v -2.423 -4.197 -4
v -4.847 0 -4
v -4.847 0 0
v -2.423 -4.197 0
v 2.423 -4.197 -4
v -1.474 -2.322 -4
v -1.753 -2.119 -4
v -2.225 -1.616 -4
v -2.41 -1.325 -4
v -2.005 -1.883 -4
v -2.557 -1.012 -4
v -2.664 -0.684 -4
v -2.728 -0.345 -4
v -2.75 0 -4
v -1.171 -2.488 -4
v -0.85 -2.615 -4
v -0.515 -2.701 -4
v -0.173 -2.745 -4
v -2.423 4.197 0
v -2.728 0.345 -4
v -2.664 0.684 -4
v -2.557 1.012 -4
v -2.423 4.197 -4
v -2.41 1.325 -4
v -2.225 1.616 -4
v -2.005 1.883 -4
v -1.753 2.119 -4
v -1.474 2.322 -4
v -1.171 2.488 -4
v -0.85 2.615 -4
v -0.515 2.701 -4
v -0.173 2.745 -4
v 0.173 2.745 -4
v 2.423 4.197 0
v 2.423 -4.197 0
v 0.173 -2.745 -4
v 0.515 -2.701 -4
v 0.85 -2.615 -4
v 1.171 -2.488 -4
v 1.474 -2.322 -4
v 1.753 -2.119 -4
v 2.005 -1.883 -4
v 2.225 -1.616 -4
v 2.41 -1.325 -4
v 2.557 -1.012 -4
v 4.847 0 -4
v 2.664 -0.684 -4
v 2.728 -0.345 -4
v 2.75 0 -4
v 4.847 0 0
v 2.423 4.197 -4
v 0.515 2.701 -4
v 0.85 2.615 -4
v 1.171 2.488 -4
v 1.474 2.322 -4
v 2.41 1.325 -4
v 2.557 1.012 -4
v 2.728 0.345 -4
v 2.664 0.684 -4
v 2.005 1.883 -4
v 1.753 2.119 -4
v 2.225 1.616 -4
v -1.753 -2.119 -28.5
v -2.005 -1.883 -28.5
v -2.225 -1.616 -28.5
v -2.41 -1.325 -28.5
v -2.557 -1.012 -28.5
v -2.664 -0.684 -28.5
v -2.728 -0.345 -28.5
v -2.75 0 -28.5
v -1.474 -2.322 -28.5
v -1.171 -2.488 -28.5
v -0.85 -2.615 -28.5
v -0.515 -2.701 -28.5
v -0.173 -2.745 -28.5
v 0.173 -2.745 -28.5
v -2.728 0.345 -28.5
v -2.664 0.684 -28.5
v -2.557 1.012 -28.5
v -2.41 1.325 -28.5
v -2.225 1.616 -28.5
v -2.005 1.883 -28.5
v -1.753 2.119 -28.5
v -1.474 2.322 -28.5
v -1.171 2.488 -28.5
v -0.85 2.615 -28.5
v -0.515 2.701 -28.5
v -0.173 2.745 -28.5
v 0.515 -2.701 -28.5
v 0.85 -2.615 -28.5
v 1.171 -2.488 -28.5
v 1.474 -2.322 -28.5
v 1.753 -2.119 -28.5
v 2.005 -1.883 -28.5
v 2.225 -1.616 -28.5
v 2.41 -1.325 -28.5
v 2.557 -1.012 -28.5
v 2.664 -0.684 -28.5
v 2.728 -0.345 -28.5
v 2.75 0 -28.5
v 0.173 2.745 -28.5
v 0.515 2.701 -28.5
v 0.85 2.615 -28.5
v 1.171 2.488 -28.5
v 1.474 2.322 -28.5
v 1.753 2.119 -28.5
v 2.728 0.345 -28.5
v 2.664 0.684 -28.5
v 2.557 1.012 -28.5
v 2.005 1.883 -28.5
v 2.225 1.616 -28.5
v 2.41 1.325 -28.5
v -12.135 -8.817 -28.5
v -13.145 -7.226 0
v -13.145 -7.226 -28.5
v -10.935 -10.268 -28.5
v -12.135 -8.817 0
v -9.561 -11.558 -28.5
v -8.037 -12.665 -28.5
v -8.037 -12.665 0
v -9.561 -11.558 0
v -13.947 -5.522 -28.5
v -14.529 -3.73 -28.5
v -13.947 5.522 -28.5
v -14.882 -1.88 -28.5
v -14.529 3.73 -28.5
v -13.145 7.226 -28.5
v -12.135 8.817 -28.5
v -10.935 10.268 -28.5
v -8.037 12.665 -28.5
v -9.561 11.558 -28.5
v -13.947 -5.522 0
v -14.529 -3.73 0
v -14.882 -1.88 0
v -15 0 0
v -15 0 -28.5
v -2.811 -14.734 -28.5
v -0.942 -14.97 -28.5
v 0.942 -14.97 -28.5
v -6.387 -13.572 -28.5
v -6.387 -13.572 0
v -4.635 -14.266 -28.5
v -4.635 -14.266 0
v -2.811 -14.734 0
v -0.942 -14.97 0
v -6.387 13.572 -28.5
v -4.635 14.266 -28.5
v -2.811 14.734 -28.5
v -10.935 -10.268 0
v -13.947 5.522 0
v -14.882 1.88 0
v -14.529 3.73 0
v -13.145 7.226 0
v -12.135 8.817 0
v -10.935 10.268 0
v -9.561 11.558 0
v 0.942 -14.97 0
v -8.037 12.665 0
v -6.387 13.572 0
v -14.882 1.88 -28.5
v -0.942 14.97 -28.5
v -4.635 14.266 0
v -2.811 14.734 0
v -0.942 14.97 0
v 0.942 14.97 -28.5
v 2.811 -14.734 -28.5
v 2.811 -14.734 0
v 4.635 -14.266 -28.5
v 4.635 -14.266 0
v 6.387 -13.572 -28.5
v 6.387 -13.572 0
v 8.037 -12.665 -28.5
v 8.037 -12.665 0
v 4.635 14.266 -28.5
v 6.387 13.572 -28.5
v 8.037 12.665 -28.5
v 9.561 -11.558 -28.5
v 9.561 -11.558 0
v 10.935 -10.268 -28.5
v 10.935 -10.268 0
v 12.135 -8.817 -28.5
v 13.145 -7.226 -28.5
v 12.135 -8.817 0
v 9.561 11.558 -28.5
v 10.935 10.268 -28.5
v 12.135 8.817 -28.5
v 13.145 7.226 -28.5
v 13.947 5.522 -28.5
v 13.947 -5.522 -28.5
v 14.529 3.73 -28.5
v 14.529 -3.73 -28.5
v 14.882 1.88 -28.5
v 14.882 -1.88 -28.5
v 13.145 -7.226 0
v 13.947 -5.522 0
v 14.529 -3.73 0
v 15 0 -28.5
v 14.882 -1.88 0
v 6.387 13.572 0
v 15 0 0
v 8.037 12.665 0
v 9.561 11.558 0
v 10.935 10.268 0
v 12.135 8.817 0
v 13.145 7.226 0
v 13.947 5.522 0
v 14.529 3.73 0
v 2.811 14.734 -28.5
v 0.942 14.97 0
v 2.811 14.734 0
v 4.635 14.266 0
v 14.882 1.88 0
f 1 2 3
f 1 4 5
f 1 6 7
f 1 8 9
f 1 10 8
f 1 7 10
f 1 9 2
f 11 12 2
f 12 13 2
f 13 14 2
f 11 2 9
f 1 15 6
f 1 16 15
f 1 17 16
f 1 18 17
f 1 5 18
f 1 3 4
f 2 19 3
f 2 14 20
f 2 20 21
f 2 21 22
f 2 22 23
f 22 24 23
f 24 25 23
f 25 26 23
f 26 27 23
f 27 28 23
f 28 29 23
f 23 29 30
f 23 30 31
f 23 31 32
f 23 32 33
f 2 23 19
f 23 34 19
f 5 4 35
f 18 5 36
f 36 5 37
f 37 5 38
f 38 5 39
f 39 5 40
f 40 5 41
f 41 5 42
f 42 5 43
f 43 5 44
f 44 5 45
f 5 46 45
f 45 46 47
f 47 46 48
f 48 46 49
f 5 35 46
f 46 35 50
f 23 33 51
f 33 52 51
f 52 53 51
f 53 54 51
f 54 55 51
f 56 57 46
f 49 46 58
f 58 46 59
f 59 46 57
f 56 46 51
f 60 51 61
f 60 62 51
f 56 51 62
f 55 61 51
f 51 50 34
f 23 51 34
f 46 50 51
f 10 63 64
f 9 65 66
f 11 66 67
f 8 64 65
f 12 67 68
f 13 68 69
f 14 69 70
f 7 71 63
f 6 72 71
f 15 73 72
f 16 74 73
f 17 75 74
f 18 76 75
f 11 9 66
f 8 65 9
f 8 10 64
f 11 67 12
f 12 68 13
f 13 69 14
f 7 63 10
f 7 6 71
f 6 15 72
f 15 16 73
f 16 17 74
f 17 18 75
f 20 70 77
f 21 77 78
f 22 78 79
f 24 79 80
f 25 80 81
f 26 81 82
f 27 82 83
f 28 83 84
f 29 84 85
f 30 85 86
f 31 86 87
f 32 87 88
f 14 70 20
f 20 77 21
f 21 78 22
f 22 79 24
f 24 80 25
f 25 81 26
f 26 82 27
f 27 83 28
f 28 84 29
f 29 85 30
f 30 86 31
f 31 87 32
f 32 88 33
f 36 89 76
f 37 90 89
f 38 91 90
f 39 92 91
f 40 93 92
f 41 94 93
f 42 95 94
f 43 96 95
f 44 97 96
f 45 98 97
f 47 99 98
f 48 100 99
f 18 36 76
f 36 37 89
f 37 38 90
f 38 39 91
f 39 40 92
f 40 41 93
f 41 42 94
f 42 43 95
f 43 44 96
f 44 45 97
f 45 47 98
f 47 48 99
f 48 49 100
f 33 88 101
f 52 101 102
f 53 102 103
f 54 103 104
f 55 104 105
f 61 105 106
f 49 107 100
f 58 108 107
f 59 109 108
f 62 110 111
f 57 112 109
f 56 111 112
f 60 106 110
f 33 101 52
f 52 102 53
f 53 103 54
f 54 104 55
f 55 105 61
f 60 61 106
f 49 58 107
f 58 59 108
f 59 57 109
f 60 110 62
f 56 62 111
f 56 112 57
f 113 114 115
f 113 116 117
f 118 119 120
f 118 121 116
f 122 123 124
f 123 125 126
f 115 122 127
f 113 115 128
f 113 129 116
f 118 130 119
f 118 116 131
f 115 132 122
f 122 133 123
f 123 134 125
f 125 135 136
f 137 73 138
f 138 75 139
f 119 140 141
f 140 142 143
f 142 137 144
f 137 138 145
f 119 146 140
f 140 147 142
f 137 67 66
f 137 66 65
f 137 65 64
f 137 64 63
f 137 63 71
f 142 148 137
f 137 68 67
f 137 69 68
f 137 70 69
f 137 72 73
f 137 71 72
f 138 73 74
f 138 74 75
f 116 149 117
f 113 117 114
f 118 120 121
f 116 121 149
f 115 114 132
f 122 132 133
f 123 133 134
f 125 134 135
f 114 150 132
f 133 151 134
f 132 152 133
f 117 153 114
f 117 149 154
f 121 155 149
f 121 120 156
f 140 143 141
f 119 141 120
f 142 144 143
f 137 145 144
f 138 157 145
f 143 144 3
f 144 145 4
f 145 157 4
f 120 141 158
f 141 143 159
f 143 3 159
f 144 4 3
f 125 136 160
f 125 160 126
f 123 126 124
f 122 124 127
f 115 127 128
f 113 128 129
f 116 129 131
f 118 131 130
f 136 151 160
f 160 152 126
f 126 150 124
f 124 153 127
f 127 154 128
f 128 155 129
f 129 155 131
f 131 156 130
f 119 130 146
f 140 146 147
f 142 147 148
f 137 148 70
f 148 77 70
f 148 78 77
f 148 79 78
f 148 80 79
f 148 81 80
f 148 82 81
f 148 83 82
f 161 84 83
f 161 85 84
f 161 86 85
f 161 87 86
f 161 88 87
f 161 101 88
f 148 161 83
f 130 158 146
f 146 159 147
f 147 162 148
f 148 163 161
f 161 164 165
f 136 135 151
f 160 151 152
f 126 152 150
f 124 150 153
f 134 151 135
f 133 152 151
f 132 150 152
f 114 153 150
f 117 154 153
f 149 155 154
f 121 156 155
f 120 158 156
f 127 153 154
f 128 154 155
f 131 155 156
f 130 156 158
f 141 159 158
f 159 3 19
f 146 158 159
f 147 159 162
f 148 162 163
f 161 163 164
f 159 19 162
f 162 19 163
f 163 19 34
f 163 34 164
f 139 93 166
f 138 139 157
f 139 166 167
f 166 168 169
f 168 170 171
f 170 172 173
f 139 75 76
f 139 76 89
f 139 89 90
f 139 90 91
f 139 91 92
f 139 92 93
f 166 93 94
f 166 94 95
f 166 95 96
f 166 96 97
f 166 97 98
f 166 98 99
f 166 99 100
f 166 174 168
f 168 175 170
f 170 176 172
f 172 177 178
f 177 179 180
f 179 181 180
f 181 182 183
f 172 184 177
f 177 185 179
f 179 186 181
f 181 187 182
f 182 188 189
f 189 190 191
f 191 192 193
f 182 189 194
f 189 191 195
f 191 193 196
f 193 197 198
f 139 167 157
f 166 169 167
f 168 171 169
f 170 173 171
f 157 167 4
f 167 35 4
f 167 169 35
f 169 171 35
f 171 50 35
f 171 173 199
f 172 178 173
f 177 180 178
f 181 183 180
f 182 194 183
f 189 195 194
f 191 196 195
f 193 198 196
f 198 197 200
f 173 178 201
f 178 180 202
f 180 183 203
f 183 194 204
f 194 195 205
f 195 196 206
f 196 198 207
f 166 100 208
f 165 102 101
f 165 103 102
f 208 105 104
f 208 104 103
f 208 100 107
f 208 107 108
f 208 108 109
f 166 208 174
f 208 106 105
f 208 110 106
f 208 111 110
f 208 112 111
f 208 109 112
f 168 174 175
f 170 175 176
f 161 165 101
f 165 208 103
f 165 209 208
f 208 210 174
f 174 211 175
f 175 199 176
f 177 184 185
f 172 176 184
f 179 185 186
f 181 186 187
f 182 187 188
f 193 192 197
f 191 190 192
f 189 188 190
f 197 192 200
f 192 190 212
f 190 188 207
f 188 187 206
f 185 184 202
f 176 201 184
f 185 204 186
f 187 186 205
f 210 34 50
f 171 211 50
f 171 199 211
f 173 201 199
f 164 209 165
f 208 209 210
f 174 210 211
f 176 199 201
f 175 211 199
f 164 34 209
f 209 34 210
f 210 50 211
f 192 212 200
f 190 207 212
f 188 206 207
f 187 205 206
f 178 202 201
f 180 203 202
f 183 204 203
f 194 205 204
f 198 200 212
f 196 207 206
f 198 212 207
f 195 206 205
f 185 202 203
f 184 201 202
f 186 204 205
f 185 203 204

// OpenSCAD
$fn = 50;

difference() {
	union() {
		translate(v = [0, 0, -28.5]) {
			cylinder(h = 28.5, r = 15.0);
		}
	}
	union() {
		translate(v = [0, 0, 0]) {
			rotate(a = [0, 0, 0]) {
				difference() {
					union() {
						translate(v = [0, 0, -4]) {
							linear_extrude(height = 4) {
								polygon(points = [[4.8468, 0.0], [2.4234000000000004, 4.197451927062417], [-2.423399999999999, 4.197451927062417], [-4.8468, 5.935618106107392e-16], [-2.423400000000002, -4.197451927062416], [2.423399999999997, -4.197451927062419]]);
							}
						}
					}
					union();
				}
			}
		}
		#translate(v = [0, 0, -100.0]) {
			cylinder(h = 200, r = 2.75);
		}
	}
}
